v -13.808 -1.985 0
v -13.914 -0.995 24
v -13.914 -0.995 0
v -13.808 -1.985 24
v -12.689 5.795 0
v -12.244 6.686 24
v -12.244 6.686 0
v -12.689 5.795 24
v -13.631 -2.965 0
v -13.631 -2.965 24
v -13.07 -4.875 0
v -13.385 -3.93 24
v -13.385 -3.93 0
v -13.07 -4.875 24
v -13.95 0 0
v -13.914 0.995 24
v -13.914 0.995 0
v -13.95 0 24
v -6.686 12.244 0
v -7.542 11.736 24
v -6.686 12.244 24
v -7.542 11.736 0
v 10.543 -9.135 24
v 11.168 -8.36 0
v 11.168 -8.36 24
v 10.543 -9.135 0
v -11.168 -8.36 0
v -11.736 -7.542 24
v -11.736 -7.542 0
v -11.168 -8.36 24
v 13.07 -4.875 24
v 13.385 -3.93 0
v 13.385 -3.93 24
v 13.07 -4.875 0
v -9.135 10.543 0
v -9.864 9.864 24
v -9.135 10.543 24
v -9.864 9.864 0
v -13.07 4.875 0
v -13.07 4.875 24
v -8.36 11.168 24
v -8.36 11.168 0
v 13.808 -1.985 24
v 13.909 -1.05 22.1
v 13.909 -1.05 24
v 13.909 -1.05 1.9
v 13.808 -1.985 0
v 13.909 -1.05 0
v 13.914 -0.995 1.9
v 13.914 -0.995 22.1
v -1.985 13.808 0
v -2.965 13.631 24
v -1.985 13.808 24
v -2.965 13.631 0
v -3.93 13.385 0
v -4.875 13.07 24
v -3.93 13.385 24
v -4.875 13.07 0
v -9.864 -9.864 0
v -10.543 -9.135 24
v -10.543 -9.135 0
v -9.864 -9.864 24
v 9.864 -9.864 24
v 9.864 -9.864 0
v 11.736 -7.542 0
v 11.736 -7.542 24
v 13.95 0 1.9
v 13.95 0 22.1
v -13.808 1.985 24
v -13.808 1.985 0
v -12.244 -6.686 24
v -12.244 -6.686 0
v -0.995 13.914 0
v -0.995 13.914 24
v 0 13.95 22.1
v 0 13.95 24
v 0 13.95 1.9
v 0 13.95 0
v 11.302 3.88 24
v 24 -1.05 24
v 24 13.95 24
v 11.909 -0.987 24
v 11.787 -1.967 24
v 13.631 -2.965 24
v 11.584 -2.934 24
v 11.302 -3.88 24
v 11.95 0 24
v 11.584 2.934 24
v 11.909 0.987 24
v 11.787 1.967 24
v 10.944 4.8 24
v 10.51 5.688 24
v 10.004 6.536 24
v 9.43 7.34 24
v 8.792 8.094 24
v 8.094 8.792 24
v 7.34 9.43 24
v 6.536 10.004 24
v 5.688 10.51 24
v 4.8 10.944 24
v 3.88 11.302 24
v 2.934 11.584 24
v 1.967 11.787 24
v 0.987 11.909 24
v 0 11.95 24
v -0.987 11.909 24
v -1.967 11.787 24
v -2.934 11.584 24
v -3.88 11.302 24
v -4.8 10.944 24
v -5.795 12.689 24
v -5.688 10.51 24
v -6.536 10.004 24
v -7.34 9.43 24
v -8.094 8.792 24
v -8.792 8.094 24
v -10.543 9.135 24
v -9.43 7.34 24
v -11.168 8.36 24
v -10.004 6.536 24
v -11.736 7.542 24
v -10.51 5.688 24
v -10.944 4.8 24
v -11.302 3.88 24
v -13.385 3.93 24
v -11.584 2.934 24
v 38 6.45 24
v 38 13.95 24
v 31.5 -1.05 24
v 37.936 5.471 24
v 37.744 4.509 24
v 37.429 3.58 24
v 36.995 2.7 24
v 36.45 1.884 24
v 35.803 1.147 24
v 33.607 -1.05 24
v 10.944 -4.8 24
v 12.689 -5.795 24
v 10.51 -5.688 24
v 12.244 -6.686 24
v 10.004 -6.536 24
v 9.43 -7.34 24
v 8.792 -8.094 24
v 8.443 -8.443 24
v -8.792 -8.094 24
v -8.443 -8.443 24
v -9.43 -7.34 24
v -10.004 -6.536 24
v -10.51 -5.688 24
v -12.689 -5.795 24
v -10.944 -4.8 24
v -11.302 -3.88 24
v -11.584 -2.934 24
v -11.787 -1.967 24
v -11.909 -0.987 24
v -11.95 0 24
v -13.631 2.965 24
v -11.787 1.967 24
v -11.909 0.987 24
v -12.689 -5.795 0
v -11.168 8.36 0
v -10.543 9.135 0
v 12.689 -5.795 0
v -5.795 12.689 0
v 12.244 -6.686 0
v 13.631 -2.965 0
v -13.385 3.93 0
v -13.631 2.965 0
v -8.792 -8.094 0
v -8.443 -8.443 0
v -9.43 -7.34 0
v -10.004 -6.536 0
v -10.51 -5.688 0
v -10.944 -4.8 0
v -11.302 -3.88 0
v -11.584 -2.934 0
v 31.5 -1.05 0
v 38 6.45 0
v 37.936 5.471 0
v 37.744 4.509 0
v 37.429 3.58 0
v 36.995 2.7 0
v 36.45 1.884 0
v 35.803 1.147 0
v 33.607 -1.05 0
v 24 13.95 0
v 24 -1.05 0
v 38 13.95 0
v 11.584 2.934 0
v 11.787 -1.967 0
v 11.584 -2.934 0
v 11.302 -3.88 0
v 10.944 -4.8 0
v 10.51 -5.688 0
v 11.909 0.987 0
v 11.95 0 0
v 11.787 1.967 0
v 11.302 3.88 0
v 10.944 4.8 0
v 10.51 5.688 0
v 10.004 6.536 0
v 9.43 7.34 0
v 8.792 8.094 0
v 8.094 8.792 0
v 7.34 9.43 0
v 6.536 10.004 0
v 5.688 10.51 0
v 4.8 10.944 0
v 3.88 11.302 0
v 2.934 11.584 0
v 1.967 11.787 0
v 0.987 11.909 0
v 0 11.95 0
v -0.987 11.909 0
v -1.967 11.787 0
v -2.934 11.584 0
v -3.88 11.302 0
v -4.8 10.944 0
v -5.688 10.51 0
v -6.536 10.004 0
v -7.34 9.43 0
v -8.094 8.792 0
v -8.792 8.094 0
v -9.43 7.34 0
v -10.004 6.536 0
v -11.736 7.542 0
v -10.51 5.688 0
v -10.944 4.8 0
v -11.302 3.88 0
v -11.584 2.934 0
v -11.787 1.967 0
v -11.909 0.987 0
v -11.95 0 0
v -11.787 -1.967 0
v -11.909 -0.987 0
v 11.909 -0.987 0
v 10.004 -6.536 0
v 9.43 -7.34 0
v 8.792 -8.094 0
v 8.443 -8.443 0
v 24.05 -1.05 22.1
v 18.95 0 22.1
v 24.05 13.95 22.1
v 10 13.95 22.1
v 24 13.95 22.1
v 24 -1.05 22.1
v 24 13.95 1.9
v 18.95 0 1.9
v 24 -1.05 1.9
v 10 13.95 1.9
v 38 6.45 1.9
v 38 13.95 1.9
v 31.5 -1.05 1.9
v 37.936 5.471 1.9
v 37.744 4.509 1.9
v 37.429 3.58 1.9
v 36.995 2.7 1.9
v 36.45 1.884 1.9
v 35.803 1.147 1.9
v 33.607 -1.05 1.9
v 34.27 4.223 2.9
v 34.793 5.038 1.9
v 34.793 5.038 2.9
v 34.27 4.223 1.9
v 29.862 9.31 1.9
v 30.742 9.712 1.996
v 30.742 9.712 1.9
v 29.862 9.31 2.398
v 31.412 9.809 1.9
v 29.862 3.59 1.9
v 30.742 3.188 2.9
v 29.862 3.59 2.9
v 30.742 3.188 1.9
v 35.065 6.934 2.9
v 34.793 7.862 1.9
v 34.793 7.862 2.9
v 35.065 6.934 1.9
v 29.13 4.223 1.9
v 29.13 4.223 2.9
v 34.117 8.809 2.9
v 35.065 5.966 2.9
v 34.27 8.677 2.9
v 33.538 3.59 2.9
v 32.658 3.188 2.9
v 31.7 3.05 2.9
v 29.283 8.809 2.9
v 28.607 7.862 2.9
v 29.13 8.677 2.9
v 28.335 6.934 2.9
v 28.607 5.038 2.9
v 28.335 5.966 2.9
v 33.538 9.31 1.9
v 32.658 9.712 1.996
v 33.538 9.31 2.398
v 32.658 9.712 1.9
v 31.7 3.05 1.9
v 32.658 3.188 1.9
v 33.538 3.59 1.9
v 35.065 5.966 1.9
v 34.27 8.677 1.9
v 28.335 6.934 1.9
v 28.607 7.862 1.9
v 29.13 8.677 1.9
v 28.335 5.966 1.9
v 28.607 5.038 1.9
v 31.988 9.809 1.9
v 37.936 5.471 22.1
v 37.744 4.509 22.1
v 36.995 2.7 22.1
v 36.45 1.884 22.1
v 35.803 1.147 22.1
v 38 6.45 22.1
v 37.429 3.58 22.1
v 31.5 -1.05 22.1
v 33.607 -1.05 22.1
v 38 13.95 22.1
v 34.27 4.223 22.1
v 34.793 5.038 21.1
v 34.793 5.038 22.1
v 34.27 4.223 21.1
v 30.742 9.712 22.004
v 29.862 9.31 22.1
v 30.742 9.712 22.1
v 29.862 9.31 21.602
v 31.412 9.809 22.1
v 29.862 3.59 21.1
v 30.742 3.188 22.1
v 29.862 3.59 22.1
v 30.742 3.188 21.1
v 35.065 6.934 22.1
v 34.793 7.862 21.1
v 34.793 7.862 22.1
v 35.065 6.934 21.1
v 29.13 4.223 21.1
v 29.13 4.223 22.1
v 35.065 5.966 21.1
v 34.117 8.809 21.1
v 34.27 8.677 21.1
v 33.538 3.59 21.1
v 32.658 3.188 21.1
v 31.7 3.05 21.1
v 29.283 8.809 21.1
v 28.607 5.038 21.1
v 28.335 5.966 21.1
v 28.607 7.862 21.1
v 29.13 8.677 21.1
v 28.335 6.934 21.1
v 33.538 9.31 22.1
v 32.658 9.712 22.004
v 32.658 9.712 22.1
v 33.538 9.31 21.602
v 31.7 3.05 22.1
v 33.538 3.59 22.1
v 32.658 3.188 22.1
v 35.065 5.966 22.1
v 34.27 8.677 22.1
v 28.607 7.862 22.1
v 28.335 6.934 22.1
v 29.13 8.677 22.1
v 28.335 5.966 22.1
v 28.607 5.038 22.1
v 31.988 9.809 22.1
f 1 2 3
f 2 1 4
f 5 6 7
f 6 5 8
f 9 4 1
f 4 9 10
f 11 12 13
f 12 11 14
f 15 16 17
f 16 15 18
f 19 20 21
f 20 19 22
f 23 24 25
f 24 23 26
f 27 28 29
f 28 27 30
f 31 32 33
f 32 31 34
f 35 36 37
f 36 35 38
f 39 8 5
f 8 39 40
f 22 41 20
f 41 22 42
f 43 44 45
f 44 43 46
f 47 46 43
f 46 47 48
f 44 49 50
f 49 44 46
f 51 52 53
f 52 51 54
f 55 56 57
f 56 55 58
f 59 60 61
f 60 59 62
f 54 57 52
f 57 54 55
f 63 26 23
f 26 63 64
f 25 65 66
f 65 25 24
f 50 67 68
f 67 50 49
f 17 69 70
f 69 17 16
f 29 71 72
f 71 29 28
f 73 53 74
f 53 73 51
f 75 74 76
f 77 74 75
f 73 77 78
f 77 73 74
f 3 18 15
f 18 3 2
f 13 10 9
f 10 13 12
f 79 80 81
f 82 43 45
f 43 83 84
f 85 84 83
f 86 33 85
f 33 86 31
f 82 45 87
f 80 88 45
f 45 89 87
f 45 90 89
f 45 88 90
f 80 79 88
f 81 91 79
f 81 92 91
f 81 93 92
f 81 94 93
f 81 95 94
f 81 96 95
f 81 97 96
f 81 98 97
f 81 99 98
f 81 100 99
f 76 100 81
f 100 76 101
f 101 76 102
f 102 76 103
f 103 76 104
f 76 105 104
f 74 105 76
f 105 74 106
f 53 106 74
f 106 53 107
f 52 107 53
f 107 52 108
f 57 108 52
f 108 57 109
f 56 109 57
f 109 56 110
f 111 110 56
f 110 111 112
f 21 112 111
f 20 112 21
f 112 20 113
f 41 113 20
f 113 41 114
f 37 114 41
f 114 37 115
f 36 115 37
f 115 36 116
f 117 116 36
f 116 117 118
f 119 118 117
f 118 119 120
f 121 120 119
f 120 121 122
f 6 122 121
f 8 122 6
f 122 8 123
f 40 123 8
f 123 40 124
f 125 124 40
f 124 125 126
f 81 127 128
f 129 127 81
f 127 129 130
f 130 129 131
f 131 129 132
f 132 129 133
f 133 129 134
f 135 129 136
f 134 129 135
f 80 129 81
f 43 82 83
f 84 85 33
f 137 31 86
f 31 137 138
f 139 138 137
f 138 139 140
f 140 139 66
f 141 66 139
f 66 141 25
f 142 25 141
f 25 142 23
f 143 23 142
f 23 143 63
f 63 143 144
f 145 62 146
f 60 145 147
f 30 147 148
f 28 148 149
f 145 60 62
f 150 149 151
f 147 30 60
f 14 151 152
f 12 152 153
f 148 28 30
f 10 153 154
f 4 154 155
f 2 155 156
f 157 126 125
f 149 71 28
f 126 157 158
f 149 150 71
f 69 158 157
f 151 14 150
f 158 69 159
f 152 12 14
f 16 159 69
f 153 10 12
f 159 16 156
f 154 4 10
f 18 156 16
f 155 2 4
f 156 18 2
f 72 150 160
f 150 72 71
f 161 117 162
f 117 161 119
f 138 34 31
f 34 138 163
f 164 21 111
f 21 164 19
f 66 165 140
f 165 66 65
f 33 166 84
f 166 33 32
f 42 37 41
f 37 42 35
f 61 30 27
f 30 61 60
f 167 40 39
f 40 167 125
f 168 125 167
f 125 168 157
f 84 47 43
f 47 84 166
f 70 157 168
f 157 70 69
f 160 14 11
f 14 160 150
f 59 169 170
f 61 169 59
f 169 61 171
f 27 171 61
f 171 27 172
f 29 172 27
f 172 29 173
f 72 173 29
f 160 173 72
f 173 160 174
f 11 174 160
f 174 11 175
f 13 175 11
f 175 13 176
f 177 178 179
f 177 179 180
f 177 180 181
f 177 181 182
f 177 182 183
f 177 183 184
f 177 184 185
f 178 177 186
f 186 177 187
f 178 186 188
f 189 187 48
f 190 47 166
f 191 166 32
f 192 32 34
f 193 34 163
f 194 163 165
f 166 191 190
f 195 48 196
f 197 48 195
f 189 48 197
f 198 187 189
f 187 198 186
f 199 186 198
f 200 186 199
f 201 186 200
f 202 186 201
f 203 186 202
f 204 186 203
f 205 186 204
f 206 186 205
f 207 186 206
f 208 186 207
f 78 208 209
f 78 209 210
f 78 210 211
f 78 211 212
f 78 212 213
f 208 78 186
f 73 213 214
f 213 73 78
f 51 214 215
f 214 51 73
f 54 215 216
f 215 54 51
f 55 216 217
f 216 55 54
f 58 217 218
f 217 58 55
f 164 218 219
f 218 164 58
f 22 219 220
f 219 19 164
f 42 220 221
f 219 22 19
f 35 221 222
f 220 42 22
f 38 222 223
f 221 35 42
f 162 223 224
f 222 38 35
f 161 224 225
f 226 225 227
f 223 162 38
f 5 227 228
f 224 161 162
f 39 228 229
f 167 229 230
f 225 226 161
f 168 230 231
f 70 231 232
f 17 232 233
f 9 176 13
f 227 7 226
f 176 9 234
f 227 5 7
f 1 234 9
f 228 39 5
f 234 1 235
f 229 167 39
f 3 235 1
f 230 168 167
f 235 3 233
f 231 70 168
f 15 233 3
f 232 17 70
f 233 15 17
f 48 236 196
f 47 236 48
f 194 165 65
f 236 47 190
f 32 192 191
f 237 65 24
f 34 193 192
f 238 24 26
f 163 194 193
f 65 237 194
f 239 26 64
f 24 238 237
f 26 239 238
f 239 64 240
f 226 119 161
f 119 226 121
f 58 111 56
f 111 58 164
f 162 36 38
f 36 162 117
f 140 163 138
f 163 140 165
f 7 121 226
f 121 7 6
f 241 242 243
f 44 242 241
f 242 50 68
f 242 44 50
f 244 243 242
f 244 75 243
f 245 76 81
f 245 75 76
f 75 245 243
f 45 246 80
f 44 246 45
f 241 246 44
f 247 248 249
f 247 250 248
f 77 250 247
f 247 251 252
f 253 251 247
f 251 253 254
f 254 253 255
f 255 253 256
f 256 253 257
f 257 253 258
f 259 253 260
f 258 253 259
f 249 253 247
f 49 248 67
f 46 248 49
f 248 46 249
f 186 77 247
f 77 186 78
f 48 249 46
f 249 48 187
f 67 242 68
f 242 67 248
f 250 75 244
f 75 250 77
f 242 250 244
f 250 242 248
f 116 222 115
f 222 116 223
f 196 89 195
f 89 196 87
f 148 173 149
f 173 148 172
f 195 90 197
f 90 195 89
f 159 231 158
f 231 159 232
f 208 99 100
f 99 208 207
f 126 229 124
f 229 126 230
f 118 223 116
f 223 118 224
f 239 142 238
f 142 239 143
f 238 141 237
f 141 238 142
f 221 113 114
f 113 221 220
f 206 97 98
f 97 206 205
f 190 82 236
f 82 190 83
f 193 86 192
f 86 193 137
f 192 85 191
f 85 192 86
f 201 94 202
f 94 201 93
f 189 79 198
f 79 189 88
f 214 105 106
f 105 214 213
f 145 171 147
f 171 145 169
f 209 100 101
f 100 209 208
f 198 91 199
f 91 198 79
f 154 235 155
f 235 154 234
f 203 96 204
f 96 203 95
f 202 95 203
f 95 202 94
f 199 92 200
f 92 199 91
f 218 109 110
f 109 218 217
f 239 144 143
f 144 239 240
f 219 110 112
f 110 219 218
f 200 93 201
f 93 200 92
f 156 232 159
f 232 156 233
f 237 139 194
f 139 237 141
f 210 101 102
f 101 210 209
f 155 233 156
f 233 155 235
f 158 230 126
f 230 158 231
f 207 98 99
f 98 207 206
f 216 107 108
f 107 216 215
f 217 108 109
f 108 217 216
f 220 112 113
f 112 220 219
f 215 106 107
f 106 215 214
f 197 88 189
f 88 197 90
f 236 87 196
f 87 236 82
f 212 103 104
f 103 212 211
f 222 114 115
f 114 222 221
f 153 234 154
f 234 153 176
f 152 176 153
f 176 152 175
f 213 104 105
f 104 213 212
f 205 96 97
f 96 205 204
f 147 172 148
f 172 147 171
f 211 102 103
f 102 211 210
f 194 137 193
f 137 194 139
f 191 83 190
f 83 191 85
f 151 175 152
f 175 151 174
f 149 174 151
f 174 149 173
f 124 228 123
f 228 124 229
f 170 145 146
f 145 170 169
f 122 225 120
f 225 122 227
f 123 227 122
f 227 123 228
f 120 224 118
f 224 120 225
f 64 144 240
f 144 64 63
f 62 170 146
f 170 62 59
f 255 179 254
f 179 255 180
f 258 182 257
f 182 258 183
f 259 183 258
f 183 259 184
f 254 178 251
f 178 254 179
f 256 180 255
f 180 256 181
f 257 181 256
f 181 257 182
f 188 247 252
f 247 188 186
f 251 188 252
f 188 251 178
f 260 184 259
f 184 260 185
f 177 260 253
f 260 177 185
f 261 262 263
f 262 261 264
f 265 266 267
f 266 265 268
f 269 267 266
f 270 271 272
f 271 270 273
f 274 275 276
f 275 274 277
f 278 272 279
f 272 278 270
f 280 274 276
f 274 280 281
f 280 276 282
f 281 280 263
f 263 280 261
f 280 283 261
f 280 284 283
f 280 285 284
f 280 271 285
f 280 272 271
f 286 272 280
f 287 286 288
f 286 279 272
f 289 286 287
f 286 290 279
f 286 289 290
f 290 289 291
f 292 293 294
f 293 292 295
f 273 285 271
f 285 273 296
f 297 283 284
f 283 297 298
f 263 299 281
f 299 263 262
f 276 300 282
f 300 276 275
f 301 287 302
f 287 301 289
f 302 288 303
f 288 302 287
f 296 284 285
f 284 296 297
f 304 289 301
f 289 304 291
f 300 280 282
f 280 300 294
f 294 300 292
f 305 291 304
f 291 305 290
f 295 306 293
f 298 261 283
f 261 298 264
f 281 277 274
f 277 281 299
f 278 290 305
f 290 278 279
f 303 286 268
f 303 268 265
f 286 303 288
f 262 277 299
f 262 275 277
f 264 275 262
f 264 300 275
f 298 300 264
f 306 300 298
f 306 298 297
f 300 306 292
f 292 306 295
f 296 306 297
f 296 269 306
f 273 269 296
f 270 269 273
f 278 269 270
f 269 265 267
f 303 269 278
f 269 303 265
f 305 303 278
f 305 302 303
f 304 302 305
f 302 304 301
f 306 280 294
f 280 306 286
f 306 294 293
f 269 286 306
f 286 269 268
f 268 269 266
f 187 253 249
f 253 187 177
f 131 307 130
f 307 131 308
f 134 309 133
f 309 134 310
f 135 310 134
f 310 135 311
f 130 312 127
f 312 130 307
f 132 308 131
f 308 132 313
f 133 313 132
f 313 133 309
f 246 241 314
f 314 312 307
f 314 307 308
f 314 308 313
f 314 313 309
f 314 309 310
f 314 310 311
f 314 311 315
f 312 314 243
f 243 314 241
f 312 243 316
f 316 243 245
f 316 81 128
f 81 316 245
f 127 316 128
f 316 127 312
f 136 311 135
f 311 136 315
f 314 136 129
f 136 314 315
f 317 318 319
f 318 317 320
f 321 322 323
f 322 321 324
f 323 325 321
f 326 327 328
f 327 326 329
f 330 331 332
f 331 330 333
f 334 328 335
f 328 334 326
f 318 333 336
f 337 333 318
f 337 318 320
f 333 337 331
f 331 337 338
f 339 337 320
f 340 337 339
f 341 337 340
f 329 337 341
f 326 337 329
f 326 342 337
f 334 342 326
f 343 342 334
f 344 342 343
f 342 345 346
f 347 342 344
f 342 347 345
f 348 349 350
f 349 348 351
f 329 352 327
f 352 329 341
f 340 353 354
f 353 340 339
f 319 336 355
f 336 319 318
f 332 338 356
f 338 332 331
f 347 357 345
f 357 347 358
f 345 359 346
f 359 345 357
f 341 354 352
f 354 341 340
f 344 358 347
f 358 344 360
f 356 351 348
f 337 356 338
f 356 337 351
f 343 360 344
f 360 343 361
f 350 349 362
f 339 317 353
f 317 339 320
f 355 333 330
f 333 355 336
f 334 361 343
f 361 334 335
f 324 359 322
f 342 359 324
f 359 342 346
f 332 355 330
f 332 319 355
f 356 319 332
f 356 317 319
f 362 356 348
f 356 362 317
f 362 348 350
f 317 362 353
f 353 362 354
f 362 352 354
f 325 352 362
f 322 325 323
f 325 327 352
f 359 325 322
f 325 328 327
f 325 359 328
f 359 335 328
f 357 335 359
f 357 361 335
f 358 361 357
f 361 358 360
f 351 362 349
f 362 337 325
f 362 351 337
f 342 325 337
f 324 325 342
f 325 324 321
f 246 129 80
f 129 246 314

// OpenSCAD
// file: ../link.scad
include<parameters.scad>;

module notch_profile(with_tolerance=false) {
    polygon([
        [clip_thickness,
         -1.25 - (with_tolerance ? tolerance/2 : 0)],
        [(with_tolerance ? -.1 : 0),
         -.75 - (with_tolerance ? tolerance/2 : 0)],
        [(with_tolerance ? -.1 : 0),
         .75 + (with_tolerance ? tolerance/2 : 0)],
        [clip_thickness,
         1.25 + (with_tolerance ? tolerance/2 : 0)]
    ]);
}

module link_back() {
    union()
    translate([0, 0, outer_height/2])
    for(n=[0, 1])
    mirror([n, 0, 0])
    translate([-outer_width/2, 0, 0])
    union() {
        translate([0, _trim, 0])
        union() {
            difference() {
                translate([0, -outer_height/2, 0])
                rotate([0, 90, 0])
                cylinder(d=outer_height, h=wall_thickness-tolerance/2);

                translate([-.1, -outer_height/2, -outer_height/2])
                cube([wall_thickness+.2, outer_height/2, outer_height]);
            }

            translate([0, -outer_height, -outer_height/2])
            cube([wall_thickness-tolerance/2, outer_height/2, outer_height/2]);

            radius = (outer_height/2);
            translate([0, -(radius*(1+cos(45))), radius*sin(45)])
            rotate([90, 0, 90])
            linear_extrude(height=wall_thickness-tolerance/2)
            polygon([
                [0, 0],
                [radius*(1-sin(45)), radius*(1-sin(45))],
                [radius*cos(45), radius*(1-sin(45))],
                [radius*cos(45), 0]
            ]);
        }

        translate([0, -outer_height/2, -outer_height/2])
        cube([wall_thickness-tolerance/2, outer_height/2, outer_height]);

        // key
        translate([0, -outer_height/2-tolerance, 0])
        rotate([0, 90, 0])
        translate([0, 0, wall_thickness-.1])
        difference() {
            cylinder(d=key_diameter-tolerance, h=key_depth+.1-tolerance);

            translate([key_diameter/2, -key_diameter/2-1, 0])
            rotate([0, 270-key_slope_bottom, 0])
            translate([0, 0,-.9])
            cube([10,10,1]);
        }
    }
}

module link_mid() {
    translate([0, -mid_depth, 0])
    difference() {
        union() {
            // walls
            translate([0, 0, outer_height/2])
            for(n=[0, 1])
            mirror([n, 0, 0])
            translate([-outer_width/2, 0, -outer_height/2])
            cube([wall_thickness * 2, mid_depth, outer_height]);

            // base
            translate([-outer_width/2, 0, 0])
            cube([outer_width, mid_depth, wall_thickness]);
        }

        // notch cutout
        translate([-outer_width/2-.5, mid_depth/2, outer_height])
        rotate([0, 90, 0])
        linear_extrude(height=outer_width+1)
        notch_profile(true);
    }
}

module link_front() {
    union()
    translate([0, 0, outer_height/2])
    for(n=[0, 1])
    mirror([n, 0, 0])
    translate([-outer_width/2 + wall_thickness, 0, 0])
    difference() {
        union() {
            translate([0, -_trim, 0])
            difference() {
                translate([tolerance/2, outer_height/2, 0])
                rotate([0, 90, 0])
                cylinder(d=outer_height, h=wall_thickness-tolerance/2);

                translate([tolerance-.1, 0, -outer_height/2])
                cube([wall_thickness-tolerance+.2, outer_height/2, outer_height]);
            }

            translate([tolerance/2, 0, -outer_height/2])
            cube([wall_thickness-tolerance/2, outer_height/2-_trim, outer_height]);
        }

        // keyhole
        translate([0, outer_height/2-_trim, 0])
        rotate([0, 90, 0])
        translate([0, 0, -.1])
        cylinder(d=key_diameter+tolerance, h=key_depth+.1+tolerance);
    }
}

module clip() {
    union() {
        for(r=[0, 180])
        rotate([0, 0, r]) {
            translate([outer_width/2-wall_thickness*2.5-tolerance, 0, clip_thickness])
            rotate([0, 90, 0])
            linear_extrude(height=wall_thickness+.25)
            notch_profile(false);

            translate([outer_width/2-wall_thickness*2-clip_curve_thickness, -1.5, 0])
            cube([clip_curve_thickness, 3, clip_thickness]);

            translate([-clip_curve_thickness/2, -clip_curve_thickness, 0])
            cube([clip_curve_thickness, clip_curve_thickness*2, clip_thickness]);

            cyl_radius=(outer_width-wall_thickness*4+clip_curve_thickness)/4;

            translate([cyl_radius-clip_curve_thickness/2, 1, 0])
            difference() {
                cylinder(r=cyl_radius, h=clip_thickness);

                translate([0, 0, -.1])
                cylinder(r=cyl_radius-clip_curve_thickness, h=clip_thickness+.2);

                translate([-outer_width/2, -outer_width/2, -.1])
                cube([outer_width, outer_width/2, clip_thickness + .2]);
            }
        }
    }
}

module full_link() {
    union() {
        translate([0, -mid_depth, 0])
        link_back();
        link_mid();
        link_front();
    }
}

//translate([0, -mid_depth/2, outer_height-clip_thickness])
translate([outer_width, 0, 0])
clip();

full_link();
// file: ../parameters.scad
// design tolerance values, used in some places to ensure fit.  You may modify this value depending on the accuracy of your 3D printer
tolerance = .2;

// full width of chain, including walls
outer_width = 24;
// full height of chain, including base
outer_height = 15;

// length of middle section between back and front of link
mid_depth = 6;

// thickness of walls
wall_thickness = 2;

// the "key" is the circular tab that locks the links together and serves as a rotation axle.
key_diameter = 7;
key_depth = 1.1;
// the bottom of the key has a slope to avoid any filament drooping so manual post-processing shouldn't be necessary. You may not need this; it does give the links a slight tendency to snap out if bent beyond the intended range (though this may also be desirable).
key_slope_bottom = 45;

// Z thickness of overall clip
clip_thickness = 2;
// X/Y thickness of curves that make up the "S" clip shape
clip_curve_thickness = 1.75;

end_screw_hole_diameter = 3.5;

_trim = 1;

$fa = 3;
$fs = 1;
// main file
include<../parameters.scad>
use<../link.scad>

pipe_size = 23.5+tolerance*2;
sleeve_thickness = 2;
spacing = 10;

union() {
    difference() {
        union() {
            cylinder(d=pipe_size+sleeve_thickness*2, h=outer_width);

            translate([
                0,
                pipe_size/2+sleeve_thickness-outer_height,
                outer_width-(wall_thickness-tolerance/2)
            ])
            cube([
                pipe_size/2+sleeve_thickness+spacing+.1,
                outer_height,
                wall_thickness-tolerance/2
            ]);
            translate([
                0,
                pipe_size/2+sleeve_thickness-outer_height,
                0
            ])
            cube([
                pipe_size/2+sleeve_thickness+spacing+.1,
                outer_height,
                wall_thickness-tolerance/2
            ]);

            linear_extrude(height=outer_width)
            polygon([
                [0, pipe_size/2+sleeve_thickness],
                [10, pipe_size/2+sleeve_thickness],
                [pipe_size/2+sleeve_thickness+spacing/2, 0],
                [0, 0]
            ]);
        }

        translate([0, 0, -.1])
        cylinder(d=pipe_size, h=outer_width+.2);

        rotate([0, 0, -135])
        translate([0, 0, -.1])
        cube([pipe_size, pipe_size, outer_width+.2]);
    }


    translate([
        outer_width/2+sleeve_thickness+spacing,
        pipe_size/2+sleeve_thickness,
        outer_width/2
    ])
    rotate([90, -90, 0])
    link_back();
}
